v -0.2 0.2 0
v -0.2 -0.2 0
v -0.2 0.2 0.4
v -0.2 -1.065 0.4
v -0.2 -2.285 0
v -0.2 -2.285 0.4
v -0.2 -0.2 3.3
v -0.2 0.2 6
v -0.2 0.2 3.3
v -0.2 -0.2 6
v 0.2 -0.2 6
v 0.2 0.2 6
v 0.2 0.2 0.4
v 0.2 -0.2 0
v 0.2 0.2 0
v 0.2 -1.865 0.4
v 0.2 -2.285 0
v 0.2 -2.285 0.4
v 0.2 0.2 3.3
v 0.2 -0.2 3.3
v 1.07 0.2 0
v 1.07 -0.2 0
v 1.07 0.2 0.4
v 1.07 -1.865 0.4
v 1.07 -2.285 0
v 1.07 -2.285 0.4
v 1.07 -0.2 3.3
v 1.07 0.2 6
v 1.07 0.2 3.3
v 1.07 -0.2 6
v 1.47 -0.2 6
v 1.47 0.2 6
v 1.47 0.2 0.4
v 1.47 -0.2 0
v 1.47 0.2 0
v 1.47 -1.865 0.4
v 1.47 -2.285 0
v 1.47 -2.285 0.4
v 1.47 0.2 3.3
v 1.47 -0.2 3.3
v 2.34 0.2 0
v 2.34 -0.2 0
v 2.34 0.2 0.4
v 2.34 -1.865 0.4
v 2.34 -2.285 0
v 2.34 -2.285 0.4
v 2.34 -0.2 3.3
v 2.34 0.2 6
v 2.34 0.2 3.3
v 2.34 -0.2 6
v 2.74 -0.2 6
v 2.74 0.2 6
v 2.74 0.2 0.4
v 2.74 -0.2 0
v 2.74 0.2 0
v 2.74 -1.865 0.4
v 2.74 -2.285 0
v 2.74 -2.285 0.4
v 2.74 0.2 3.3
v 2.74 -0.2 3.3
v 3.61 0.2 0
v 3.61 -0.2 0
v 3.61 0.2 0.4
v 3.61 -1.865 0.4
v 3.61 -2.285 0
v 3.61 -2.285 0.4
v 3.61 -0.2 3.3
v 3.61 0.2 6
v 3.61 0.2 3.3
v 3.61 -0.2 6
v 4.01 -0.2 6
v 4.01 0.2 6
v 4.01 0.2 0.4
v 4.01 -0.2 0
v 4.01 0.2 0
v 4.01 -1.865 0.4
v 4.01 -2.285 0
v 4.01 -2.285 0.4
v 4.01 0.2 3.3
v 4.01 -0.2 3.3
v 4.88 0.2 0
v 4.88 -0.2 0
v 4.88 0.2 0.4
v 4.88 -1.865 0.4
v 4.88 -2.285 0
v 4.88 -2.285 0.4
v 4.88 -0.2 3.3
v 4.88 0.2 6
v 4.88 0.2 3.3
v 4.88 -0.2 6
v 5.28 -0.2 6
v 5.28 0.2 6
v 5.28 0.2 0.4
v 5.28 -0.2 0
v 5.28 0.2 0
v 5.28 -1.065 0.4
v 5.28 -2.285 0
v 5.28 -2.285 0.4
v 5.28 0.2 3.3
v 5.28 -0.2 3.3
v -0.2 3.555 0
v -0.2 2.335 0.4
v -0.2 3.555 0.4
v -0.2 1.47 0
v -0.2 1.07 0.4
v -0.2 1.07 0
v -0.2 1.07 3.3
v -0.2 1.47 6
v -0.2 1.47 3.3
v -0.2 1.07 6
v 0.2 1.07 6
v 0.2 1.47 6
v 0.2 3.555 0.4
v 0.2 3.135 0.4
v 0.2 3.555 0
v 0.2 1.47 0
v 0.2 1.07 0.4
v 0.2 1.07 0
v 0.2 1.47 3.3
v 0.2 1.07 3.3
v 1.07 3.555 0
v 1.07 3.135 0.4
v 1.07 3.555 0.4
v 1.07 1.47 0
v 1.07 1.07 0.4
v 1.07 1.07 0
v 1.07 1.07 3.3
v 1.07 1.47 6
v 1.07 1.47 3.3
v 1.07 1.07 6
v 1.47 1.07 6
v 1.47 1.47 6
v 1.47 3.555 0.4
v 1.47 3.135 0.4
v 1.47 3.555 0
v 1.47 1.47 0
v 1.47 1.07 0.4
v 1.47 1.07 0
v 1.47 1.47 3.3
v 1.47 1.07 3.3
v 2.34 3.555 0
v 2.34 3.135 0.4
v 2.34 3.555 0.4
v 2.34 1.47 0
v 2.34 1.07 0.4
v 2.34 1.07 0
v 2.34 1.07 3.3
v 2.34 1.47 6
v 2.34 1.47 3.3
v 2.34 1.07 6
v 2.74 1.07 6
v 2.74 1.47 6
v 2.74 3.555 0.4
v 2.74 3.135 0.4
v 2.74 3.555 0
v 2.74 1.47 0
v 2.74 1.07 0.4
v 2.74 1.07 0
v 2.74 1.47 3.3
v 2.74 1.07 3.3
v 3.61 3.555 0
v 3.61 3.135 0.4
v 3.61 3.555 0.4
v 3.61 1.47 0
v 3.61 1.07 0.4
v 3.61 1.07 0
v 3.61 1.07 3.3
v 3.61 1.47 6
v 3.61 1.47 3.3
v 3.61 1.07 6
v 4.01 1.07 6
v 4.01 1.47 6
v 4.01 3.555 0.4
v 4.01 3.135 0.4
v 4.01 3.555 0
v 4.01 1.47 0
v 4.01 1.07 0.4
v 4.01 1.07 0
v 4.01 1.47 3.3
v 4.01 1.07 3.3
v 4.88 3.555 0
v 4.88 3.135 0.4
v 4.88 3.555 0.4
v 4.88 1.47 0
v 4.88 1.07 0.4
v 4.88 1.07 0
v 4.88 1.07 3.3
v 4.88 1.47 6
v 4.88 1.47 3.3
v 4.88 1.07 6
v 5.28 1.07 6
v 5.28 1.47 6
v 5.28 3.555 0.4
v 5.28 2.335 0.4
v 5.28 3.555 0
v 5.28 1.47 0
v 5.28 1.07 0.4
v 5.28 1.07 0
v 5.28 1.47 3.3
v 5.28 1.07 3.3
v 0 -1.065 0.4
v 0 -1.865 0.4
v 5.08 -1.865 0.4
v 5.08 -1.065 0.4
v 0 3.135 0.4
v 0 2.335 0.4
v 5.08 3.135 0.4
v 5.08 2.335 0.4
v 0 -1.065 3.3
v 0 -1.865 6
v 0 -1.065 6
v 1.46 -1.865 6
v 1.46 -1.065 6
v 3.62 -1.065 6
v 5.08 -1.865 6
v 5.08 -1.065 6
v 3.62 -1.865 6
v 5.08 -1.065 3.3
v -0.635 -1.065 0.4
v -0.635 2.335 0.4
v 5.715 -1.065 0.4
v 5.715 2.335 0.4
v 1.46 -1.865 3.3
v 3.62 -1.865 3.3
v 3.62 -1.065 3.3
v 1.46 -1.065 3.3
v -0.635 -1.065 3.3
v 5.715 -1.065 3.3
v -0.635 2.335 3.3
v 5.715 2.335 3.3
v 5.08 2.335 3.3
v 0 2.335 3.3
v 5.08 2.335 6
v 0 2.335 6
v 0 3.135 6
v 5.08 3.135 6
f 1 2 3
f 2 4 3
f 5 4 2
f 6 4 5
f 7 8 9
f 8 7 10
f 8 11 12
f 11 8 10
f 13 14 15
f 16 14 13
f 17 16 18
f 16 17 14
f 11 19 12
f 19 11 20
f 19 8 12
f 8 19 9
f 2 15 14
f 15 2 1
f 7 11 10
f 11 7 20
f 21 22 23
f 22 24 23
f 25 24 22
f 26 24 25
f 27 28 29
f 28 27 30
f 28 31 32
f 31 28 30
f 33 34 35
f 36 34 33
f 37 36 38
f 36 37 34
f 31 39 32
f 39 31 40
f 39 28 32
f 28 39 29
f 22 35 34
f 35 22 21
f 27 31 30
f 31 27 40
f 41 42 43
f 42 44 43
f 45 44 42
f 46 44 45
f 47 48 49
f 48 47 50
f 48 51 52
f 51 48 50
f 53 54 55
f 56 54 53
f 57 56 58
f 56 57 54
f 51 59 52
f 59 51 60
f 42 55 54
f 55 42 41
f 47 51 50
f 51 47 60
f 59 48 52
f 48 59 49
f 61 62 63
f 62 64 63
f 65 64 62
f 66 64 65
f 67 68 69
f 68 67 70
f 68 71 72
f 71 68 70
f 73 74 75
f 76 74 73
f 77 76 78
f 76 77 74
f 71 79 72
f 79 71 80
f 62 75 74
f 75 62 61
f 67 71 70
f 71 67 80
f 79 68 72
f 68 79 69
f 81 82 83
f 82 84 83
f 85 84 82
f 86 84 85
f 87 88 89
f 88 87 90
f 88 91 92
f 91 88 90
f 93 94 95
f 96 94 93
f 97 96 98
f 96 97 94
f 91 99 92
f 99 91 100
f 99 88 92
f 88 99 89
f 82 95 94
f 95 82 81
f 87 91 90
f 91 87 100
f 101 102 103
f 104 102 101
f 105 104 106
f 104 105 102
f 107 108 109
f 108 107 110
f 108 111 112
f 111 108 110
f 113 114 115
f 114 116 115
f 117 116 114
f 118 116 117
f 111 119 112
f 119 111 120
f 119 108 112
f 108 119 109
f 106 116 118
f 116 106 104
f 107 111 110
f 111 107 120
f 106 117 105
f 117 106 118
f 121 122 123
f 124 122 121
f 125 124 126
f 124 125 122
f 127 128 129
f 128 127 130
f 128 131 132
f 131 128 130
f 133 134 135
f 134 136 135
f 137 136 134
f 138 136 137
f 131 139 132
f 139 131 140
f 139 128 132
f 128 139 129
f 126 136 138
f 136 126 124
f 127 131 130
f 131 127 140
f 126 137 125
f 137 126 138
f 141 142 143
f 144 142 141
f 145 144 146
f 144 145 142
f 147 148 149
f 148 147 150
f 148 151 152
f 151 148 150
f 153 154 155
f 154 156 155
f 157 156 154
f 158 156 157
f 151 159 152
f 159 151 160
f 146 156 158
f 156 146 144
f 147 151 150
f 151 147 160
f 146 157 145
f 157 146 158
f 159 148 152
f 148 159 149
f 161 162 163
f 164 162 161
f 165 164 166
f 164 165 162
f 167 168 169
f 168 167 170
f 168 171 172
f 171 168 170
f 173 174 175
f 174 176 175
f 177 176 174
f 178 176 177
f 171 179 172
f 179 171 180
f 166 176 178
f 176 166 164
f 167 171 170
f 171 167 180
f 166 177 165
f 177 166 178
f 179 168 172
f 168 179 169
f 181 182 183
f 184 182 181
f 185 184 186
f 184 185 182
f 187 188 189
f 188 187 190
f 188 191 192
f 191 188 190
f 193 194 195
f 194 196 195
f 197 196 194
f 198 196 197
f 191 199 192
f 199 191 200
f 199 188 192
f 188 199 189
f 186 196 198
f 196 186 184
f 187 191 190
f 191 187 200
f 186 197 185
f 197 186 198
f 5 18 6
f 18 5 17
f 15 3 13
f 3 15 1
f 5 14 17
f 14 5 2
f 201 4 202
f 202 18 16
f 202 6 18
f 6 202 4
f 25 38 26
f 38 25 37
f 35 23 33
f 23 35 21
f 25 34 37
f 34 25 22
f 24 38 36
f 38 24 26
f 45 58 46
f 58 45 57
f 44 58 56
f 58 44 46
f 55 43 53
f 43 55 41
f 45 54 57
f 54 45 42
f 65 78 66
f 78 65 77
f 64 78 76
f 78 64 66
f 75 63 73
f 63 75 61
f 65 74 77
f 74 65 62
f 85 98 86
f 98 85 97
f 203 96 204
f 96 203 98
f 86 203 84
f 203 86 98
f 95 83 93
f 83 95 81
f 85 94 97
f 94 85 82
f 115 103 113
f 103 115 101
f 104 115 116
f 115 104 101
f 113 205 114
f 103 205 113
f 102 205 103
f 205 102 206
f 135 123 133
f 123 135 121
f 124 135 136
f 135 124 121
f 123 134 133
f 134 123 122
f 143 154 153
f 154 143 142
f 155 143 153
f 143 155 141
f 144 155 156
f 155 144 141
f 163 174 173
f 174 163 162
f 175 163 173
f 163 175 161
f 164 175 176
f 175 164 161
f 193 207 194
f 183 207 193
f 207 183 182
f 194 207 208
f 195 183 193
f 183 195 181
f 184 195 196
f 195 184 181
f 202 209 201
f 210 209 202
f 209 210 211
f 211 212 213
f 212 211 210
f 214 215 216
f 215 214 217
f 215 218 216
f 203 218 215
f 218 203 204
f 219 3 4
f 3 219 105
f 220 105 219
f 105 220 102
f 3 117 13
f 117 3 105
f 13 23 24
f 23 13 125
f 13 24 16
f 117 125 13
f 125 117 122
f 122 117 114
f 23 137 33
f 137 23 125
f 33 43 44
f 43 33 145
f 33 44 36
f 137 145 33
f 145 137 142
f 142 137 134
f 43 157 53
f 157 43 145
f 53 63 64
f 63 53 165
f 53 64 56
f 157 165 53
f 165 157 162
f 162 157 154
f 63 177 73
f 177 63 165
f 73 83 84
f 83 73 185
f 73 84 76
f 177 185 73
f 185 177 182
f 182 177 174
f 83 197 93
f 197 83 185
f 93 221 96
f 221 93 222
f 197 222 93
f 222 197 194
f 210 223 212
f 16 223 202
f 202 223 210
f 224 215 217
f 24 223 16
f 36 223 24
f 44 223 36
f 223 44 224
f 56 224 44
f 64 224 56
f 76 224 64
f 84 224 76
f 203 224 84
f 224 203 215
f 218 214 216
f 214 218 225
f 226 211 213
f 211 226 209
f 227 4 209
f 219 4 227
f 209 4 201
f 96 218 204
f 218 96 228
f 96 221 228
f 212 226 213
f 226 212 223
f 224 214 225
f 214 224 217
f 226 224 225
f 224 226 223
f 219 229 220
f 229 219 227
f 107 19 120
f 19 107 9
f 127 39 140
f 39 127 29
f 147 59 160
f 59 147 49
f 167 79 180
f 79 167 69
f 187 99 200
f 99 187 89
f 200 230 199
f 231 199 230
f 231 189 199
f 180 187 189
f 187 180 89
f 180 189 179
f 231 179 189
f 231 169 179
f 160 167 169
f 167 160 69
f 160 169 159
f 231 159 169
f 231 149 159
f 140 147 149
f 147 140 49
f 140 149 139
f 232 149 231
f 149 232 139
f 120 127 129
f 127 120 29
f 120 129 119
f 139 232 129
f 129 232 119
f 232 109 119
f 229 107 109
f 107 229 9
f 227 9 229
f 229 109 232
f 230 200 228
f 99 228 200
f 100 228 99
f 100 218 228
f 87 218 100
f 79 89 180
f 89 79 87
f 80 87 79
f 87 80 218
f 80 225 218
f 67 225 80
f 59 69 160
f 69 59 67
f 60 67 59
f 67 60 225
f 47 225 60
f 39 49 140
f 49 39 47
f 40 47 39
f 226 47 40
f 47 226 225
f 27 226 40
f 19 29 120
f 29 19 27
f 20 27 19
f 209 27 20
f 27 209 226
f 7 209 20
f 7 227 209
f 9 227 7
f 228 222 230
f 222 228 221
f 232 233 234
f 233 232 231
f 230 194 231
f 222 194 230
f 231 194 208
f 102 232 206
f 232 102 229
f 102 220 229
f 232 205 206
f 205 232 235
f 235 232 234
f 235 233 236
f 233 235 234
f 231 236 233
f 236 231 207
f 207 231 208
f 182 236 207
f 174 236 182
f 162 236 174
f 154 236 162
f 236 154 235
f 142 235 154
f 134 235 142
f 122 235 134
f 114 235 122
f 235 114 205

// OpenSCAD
pin_thickness = 0.4;
pin_step = 1.27;
hor_pin_length = 2.285;

pin_height = 6;
pins_per_row = 5;

plastic_height = 2.9;
plastic_width = 3.4;

notch_width = 5.08;
window_width = 2.16;
notch_thickness = 0.8;

module pin(_x,_y,_z)
{
	translate([-_x/2,-_y/2,0])
		cube([_x,_y,_z]);
};

module pins_array(_cnt, _distance, _height)
{
	if (_cnt>0)
	{
		for (_i = [0:_cnt-1])
		{
			translate([_distance*_i,0,0])
				pin(pin_thickness,pin_thickness,_height);
		}
	}
}


union()
{   
    // Array1 of pins
    pins_array(pins_per_row,pin_step,pin_height);
    // Array2 of pins
    translate([0,pin_step,0])
        pins_array(pins_per_row,pin_step,pin_height);
    // Array3 of pins
    translate([0,pin_thickness/2,pin_thickness/2])
    rotate(90,[1,0,0])
    pins_array(pins_per_row,pin_step,hor_pin_length+pin_thickness/2);
    // Array4 of pins
    translate([0,pin_step+hor_pin_length,pin_thickness/2])
    rotate(90,[1,0,0])
    pins_array(pins_per_row,pin_step,hor_pin_length+pin_thickness/2);
    
    // Draw case
    translate([-pin_step/2,-plastic_width/2+pin_step/2,pin_thickness])
    cube([pins_per_row*pin_step,plastic_width,plastic_height]);
    
    // Draw notch1
    translate([pin_step*(pins_per_row-1)/2-notch_width/2,(plastic_width-pin_step)/2+pin_step,pin_thickness])
    cube([notch_width,notch_thickness,pin_height-pin_thickness]);

    // Draw notch2
    difference()
    {
    translate([pin_step*(pins_per_row-1)/2-notch_width/2,-(plastic_width-pin_step)/2-notch_thickness,pin_thickness])
    cube([notch_width,notch_thickness,pin_height-pin_thickness]);

    translate([pin_step*(pins_per_row-1)/2-window_width/2,-(plastic_width-pin_step)/2-notch_thickness-0.05,pin_thickness+plastic_height])
    cube([window_width,notch_thickness+0.1,pin_height-pin_thickness-plastic_height+0.1]);
    }
};
